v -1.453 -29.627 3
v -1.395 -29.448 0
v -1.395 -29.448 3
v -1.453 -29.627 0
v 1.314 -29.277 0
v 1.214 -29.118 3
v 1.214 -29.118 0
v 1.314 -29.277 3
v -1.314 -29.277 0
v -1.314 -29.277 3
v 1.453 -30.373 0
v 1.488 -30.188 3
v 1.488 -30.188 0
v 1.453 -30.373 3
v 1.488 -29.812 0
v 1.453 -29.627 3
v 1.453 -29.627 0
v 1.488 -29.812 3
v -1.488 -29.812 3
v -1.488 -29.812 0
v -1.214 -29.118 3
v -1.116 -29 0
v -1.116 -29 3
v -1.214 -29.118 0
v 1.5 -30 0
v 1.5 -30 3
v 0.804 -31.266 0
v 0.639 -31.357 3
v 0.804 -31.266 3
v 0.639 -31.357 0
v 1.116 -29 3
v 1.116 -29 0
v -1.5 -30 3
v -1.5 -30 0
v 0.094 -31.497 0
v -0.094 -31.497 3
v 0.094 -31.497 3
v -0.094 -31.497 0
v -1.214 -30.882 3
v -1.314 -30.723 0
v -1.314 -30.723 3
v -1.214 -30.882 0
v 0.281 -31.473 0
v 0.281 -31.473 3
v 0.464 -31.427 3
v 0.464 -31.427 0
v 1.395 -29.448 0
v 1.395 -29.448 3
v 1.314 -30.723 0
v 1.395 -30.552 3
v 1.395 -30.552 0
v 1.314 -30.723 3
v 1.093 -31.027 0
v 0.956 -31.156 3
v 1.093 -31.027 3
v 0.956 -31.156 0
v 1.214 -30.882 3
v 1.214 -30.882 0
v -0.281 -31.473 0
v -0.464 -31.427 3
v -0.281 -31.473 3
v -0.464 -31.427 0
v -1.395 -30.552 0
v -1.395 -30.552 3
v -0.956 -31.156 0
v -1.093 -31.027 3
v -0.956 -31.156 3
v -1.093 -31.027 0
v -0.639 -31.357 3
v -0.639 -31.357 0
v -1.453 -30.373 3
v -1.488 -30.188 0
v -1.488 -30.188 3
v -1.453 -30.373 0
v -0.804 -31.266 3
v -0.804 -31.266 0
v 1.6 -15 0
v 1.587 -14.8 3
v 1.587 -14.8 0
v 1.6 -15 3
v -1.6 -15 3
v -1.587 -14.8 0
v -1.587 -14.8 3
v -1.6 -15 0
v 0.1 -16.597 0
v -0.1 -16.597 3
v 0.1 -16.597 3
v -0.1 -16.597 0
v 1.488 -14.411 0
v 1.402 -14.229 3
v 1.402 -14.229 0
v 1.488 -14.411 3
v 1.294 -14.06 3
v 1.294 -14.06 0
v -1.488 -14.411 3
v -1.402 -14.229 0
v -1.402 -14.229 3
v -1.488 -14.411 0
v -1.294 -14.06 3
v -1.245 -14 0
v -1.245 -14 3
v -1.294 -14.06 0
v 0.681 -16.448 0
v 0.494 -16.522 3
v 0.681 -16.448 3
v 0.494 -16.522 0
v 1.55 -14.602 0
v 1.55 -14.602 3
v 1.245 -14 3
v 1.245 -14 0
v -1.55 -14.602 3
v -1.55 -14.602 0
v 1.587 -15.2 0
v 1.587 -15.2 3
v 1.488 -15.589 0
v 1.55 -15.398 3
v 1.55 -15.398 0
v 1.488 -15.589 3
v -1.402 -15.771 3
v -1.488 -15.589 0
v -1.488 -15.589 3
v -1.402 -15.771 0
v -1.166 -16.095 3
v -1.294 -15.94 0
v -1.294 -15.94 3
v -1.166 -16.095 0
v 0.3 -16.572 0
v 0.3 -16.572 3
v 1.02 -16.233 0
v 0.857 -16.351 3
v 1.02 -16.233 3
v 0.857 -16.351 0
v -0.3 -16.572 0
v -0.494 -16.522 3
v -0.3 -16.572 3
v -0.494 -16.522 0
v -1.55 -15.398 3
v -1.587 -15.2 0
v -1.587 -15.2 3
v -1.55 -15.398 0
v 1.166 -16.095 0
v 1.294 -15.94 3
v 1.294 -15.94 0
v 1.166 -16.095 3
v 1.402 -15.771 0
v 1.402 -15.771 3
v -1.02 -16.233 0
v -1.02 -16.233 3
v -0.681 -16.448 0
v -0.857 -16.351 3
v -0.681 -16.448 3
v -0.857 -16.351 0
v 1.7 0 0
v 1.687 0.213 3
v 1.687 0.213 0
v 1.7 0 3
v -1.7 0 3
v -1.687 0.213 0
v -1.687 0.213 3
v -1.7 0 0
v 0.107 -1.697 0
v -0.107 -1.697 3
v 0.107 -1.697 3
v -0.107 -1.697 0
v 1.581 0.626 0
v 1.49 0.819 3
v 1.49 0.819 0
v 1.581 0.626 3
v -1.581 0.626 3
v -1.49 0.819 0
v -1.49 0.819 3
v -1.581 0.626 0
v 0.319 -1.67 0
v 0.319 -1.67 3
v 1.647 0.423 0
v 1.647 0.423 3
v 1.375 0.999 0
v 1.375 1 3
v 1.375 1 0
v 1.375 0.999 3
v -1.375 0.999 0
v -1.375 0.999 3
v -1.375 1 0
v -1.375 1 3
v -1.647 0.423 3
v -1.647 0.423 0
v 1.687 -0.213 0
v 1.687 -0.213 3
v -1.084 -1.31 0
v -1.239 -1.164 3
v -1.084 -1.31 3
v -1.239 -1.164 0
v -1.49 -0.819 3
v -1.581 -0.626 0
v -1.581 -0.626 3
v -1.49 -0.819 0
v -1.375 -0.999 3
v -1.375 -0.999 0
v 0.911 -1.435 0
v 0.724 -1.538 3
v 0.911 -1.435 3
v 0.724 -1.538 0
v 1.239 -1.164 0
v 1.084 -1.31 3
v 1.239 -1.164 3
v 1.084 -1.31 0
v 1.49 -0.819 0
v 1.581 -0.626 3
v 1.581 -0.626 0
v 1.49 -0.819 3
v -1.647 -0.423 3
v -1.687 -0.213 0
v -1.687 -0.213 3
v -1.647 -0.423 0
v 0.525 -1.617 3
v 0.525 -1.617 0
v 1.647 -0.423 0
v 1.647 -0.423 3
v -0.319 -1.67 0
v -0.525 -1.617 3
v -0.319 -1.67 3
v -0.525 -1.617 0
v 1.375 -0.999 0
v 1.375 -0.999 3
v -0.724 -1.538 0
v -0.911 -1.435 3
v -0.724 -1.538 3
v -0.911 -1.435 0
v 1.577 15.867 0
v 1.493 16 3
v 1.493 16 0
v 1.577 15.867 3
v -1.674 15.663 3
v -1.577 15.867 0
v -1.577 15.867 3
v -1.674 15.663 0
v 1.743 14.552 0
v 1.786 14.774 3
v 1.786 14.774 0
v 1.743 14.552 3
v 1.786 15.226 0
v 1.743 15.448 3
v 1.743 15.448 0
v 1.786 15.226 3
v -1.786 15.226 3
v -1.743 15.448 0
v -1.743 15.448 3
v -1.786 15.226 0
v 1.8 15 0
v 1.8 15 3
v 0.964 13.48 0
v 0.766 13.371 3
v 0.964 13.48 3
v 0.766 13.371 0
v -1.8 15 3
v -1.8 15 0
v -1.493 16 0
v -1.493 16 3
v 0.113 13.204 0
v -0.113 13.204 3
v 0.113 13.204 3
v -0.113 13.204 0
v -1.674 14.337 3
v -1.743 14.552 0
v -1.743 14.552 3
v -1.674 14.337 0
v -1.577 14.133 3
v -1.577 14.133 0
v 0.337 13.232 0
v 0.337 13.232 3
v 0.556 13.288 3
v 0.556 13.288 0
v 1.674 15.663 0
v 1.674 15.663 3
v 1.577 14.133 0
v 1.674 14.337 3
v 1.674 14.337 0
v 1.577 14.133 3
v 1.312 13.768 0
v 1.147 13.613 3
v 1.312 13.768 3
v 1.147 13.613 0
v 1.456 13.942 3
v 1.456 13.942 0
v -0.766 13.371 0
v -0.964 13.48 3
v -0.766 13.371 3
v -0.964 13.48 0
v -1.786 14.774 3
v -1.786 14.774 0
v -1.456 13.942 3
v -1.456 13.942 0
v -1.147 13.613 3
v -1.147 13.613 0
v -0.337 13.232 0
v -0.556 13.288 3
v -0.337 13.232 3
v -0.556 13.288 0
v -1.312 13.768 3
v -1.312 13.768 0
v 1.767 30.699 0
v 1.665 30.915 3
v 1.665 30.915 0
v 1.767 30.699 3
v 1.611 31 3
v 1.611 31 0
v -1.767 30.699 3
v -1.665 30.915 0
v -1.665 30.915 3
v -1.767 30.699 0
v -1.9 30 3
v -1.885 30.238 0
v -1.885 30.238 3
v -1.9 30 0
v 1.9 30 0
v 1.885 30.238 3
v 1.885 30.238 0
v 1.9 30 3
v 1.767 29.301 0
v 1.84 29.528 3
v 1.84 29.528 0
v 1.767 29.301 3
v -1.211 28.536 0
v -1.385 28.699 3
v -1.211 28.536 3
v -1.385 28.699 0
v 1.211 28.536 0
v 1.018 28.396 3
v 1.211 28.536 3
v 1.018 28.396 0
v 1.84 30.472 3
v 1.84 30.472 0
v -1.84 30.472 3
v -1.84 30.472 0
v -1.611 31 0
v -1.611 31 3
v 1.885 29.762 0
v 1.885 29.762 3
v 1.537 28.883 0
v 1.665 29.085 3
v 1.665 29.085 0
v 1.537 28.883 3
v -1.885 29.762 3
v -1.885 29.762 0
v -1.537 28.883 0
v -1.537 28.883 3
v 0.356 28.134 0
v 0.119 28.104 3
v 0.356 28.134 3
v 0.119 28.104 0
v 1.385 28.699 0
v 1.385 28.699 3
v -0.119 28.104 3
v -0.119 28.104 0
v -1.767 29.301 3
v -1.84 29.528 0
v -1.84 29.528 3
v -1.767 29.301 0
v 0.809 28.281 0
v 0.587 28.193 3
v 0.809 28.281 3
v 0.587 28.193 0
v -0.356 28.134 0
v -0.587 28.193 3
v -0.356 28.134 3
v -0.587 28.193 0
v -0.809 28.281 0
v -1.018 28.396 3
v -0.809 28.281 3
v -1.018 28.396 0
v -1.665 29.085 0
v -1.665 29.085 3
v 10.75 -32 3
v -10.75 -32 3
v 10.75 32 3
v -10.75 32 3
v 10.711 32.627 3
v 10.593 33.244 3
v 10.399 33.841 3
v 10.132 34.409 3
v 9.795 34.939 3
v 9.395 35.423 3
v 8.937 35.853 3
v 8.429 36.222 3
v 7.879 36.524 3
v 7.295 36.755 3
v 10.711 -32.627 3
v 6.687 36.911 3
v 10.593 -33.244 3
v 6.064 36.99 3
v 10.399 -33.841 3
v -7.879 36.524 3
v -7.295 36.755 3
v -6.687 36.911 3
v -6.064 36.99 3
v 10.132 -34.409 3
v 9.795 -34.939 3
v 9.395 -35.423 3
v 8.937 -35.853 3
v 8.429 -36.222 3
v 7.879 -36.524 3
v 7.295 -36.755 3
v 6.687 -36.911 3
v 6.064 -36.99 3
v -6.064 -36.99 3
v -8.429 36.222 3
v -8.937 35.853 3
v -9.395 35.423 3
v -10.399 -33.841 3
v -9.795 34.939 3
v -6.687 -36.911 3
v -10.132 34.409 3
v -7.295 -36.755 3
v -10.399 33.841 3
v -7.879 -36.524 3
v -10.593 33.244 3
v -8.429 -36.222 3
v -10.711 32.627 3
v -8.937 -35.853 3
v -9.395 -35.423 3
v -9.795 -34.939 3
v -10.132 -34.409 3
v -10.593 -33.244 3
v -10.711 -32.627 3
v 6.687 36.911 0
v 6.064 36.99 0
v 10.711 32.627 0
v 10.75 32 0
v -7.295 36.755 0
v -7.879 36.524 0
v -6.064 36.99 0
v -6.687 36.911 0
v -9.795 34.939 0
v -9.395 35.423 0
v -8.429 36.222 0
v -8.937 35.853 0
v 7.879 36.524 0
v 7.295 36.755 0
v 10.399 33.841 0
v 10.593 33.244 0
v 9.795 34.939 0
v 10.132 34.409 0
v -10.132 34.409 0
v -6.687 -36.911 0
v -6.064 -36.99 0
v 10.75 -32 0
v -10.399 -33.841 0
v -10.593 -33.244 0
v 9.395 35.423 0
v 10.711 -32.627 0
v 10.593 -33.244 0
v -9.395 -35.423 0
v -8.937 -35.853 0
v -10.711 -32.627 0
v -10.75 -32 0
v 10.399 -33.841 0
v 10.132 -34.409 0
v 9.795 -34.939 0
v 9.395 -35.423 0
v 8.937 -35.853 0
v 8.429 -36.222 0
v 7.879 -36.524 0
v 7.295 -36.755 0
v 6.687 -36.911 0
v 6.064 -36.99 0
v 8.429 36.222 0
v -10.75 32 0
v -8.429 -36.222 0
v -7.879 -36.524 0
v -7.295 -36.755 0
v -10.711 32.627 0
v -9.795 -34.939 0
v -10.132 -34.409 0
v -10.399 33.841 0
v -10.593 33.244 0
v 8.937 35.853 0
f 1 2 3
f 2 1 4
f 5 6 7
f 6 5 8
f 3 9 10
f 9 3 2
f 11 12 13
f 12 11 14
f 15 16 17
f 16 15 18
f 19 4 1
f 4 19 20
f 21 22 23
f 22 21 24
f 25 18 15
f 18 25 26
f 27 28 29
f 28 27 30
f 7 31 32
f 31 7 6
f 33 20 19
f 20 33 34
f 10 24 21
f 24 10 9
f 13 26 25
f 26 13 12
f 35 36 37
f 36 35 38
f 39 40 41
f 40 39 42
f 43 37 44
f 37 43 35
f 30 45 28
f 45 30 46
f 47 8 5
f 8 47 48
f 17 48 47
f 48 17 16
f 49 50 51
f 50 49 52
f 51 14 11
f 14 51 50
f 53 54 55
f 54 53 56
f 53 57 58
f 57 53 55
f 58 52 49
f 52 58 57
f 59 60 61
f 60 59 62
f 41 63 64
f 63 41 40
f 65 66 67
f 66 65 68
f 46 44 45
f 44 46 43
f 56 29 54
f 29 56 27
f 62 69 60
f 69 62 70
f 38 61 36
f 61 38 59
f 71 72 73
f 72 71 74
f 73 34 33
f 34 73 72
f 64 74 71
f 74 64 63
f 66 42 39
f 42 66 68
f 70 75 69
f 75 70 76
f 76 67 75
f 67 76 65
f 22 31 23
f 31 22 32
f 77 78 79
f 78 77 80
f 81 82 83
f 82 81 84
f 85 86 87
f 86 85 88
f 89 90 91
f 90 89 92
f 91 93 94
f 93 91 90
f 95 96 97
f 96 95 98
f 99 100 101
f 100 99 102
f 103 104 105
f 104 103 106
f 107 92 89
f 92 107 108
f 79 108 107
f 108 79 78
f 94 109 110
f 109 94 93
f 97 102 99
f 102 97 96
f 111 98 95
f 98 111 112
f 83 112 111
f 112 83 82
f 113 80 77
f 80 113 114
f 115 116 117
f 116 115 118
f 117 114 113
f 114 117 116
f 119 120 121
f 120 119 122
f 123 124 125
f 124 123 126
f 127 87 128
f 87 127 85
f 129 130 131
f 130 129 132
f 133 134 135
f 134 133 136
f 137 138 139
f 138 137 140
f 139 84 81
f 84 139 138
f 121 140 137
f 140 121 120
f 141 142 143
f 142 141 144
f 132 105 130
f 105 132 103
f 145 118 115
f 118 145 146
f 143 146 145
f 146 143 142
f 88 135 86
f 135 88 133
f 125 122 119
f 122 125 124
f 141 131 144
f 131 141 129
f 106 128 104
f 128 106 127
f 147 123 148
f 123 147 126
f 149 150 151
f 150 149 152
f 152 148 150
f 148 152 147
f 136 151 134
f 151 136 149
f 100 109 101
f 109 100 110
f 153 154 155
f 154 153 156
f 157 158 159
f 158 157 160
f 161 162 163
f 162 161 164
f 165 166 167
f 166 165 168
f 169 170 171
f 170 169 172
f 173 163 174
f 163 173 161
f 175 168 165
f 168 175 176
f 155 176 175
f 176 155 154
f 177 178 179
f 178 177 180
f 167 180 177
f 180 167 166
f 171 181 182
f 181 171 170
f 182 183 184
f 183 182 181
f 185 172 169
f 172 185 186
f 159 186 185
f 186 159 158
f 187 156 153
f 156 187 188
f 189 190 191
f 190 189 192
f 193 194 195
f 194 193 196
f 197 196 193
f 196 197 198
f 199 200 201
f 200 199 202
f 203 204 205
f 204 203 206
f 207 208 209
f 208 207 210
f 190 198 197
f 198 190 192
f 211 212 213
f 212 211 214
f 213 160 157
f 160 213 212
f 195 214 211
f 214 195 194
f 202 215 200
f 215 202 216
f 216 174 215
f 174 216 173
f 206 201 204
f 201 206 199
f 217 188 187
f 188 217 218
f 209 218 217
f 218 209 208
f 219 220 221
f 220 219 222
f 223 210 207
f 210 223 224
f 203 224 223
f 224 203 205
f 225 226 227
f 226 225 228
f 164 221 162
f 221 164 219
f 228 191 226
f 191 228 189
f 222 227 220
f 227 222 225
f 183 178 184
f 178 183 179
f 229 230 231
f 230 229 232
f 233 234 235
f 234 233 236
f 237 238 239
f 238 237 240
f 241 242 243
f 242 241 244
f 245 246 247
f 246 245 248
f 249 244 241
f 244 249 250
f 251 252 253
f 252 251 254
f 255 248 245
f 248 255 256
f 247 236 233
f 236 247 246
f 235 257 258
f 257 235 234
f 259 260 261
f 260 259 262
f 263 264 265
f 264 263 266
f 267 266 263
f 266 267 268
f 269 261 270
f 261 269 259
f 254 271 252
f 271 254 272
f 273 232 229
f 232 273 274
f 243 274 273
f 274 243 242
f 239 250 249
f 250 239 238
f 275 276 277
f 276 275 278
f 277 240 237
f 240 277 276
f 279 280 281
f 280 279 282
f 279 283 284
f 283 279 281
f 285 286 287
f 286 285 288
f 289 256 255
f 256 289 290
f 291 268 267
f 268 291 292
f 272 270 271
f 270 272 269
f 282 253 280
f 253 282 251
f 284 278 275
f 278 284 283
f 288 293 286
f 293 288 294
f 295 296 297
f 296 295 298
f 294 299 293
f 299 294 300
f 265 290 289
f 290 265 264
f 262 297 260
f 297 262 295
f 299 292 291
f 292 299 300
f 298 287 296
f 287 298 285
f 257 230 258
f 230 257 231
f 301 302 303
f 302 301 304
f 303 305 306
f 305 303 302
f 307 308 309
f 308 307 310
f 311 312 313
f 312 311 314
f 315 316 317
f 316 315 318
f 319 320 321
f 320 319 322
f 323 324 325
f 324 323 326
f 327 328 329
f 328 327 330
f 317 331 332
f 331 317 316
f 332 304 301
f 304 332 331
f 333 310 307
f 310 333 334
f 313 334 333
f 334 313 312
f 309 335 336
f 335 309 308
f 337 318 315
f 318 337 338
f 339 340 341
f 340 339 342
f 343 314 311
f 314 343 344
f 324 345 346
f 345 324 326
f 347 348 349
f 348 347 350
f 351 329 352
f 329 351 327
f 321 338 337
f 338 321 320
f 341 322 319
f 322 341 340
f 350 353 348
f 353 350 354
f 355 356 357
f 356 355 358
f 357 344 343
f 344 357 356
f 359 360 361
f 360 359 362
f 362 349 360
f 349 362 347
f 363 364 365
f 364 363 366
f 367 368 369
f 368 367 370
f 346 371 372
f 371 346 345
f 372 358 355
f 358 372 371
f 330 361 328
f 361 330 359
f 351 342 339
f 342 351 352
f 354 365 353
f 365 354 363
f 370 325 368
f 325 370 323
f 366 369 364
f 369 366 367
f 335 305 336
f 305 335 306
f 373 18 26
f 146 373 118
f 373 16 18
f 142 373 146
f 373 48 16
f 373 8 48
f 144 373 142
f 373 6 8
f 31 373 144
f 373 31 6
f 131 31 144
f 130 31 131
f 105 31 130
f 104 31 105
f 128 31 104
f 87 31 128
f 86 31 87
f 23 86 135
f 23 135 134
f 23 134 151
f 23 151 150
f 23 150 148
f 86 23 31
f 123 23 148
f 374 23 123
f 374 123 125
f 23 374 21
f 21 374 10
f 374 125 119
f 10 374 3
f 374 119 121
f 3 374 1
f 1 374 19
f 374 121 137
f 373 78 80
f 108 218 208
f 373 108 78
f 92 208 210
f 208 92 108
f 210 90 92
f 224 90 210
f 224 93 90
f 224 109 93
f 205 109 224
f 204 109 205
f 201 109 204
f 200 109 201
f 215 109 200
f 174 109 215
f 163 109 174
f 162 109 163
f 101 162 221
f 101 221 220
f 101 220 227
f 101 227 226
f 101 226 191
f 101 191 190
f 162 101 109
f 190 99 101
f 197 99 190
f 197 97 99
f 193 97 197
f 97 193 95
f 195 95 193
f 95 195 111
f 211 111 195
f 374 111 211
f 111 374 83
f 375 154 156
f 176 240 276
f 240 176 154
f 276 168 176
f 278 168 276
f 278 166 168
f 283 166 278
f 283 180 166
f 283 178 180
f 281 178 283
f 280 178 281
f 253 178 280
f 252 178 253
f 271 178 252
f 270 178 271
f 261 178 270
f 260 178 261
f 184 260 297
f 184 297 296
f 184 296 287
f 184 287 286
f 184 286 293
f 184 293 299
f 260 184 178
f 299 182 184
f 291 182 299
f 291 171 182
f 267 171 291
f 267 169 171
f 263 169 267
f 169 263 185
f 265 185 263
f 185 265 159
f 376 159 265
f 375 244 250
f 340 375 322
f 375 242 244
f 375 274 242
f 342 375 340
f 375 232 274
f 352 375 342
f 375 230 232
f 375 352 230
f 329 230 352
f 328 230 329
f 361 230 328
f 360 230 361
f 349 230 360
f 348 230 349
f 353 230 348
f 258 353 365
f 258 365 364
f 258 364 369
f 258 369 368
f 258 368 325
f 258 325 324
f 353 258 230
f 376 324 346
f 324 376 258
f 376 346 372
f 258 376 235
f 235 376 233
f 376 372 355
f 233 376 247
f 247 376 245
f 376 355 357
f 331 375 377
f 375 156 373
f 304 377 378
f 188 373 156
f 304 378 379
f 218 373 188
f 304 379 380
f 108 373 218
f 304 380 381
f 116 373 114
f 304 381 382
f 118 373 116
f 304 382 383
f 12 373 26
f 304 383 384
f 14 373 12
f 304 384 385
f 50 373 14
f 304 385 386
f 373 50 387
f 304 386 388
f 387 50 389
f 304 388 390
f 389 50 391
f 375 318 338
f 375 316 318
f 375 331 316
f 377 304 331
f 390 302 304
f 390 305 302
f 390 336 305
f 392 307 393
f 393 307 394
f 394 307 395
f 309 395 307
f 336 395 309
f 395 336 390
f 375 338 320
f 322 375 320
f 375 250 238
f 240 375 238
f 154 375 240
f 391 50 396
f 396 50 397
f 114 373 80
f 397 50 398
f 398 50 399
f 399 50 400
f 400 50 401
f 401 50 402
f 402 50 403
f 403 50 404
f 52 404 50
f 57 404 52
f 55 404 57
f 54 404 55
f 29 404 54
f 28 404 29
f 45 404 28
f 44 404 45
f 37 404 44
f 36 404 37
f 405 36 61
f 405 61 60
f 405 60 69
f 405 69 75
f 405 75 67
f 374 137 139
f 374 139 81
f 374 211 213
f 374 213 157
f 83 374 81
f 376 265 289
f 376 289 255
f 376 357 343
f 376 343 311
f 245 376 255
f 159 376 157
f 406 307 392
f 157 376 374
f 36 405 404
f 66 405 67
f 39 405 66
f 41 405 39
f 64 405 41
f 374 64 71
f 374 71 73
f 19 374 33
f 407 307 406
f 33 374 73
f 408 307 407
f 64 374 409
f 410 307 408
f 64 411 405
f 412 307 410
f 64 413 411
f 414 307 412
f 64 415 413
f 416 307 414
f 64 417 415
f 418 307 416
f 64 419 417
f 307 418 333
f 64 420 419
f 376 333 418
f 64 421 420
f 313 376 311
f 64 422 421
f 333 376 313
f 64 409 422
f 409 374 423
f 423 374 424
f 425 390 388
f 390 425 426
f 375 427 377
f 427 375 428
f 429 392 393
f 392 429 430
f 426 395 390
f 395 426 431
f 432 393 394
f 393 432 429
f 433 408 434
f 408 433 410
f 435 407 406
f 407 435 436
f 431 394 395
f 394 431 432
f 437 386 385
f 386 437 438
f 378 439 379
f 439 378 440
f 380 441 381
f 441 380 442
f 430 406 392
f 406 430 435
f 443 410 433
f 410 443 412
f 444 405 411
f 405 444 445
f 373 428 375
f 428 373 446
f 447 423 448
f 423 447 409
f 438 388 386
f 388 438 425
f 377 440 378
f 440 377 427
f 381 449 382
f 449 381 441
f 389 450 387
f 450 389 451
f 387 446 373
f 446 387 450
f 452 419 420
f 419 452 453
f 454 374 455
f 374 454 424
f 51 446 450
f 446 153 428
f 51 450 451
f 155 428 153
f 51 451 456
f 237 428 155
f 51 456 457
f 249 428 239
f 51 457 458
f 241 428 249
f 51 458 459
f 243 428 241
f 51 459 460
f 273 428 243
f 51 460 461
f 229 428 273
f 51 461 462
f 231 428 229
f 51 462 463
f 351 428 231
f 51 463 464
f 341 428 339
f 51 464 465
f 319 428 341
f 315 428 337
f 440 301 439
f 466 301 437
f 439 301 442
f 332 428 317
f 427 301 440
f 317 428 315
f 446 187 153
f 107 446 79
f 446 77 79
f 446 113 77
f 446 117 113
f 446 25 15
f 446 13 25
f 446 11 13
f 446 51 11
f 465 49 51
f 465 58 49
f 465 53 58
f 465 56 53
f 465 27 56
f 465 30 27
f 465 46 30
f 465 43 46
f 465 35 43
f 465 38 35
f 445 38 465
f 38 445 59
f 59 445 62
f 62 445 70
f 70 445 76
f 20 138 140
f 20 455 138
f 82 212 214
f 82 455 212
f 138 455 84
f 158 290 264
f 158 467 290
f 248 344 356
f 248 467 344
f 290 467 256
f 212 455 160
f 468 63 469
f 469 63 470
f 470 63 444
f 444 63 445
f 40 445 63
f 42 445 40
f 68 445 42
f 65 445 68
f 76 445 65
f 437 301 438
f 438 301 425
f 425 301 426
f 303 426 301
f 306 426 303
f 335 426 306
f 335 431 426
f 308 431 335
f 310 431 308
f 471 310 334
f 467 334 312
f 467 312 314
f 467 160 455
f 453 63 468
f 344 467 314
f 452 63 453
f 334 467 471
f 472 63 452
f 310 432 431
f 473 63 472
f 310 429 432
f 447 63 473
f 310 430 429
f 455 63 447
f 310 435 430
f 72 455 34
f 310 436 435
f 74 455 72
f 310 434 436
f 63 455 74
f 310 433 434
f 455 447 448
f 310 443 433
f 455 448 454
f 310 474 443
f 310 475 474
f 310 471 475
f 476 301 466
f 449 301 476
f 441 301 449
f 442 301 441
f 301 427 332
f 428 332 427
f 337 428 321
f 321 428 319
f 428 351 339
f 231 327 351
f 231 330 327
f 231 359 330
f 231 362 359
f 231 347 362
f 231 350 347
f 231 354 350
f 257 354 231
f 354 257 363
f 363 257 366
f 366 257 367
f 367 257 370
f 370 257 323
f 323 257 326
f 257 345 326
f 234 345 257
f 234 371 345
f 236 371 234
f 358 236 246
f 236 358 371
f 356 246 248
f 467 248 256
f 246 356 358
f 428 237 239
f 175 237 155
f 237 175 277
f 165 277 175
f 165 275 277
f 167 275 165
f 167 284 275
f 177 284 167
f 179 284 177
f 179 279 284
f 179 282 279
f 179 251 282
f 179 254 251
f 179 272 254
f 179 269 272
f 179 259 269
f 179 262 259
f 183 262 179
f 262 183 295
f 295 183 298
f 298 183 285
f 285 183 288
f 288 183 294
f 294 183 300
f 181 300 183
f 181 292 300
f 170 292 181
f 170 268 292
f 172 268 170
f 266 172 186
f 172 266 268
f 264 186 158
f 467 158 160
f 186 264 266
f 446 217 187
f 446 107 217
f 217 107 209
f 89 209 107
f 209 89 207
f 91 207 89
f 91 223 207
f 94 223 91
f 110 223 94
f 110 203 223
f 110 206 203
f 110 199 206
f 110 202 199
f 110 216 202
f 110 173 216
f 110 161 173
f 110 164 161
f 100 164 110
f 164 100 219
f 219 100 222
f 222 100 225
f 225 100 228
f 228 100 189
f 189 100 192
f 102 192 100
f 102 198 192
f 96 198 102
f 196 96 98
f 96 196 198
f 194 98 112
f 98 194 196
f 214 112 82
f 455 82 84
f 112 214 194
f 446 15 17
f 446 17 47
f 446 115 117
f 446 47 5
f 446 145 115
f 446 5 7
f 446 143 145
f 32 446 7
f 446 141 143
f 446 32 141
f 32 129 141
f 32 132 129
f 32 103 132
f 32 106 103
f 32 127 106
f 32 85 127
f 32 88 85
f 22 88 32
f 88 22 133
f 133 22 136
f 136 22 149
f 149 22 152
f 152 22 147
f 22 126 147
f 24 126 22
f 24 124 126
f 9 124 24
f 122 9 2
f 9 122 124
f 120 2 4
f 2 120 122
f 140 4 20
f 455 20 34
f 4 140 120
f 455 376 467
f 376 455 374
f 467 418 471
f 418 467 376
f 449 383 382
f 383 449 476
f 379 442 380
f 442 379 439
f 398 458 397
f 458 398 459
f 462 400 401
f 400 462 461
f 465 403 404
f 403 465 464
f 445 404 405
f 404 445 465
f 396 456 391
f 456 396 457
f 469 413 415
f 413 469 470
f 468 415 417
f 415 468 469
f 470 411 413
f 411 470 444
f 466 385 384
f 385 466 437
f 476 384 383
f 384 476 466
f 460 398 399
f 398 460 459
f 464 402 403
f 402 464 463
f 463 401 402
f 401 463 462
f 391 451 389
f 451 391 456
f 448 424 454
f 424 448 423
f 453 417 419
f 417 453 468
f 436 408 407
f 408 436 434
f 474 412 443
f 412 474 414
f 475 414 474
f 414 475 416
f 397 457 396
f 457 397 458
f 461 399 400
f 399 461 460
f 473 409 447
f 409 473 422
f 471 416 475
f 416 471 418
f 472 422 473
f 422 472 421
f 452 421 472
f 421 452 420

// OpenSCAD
$fn = 50;


difference() {
	union() {
		hull() {
			translate(v = [-5.7500000000, 32.0000000000, 0]) {
				cylinder(h = 3, r = 5);
			}
			translate(v = [5.7500000000, 32.0000000000, 0]) {
				cylinder(h = 3, r = 5);
			}
			translate(v = [-5.7500000000, -32.0000000000, 0]) {
				cylinder(h = 3, r = 5);
			}
			translate(v = [5.7500000000, -32.0000000000, 0]) {
				cylinder(h = 3, r = 5);
			}
		}
	}
	union() {
		translate(v = [0, -30, 125]) {
			difference() {
				translate(v = [0, 0, -250]) {
					cylinder(h = 250, r = 1.5000000000);
				}
				translate(v = [-1.5000000000, 1.0000000000, -250]) {
					cube(size = [3.0000000000, 0.5000000000, 250]);
				}
			}
		}
		translate(v = [0, -15, 125]) {
			difference() {
				translate(v = [0, 0, -250]) {
					cylinder(h = 250, r = 1.6000000000);
				}
				translate(v = [-1.6000000000, 1.0000000000, -250]) {
					cube(size = [3.2000000000, 0.6000000000, 250]);
				}
			}
		}
		translate(v = [0, 0, 125]) {
			difference() {
				translate(v = [0, 0, -250]) {
					cylinder(h = 250, r = 1.7000000000);
				}
				translate(v = [-1.7000000000, 1.0000000000, -250]) {
					cube(size = [3.4000000000, 0.7000000000, 250]);
				}
			}
		}
		translate(v = [0, 15, 125]) {
			difference() {
				translate(v = [0, 0, -250]) {
					cylinder(h = 250, r = 1.8000000000);
				}
				translate(v = [-1.8000000000, 1.0000000000, -250]) {
					cube(size = [3.6000000000, 0.8000000000, 250]);
				}
			}
		}
		translate(v = [0, 30, 125]) {
			difference() {
				translate(v = [0, 0, -250]) {
					cylinder(h = 250, r = 1.9000000000);
				}
				translate(v = [-1.9000000000, 1.0000000000, -250]) {
					cube(size = [3.8000000000, 0.9000000000, 250]);
				}
			}
		}
	}
}
